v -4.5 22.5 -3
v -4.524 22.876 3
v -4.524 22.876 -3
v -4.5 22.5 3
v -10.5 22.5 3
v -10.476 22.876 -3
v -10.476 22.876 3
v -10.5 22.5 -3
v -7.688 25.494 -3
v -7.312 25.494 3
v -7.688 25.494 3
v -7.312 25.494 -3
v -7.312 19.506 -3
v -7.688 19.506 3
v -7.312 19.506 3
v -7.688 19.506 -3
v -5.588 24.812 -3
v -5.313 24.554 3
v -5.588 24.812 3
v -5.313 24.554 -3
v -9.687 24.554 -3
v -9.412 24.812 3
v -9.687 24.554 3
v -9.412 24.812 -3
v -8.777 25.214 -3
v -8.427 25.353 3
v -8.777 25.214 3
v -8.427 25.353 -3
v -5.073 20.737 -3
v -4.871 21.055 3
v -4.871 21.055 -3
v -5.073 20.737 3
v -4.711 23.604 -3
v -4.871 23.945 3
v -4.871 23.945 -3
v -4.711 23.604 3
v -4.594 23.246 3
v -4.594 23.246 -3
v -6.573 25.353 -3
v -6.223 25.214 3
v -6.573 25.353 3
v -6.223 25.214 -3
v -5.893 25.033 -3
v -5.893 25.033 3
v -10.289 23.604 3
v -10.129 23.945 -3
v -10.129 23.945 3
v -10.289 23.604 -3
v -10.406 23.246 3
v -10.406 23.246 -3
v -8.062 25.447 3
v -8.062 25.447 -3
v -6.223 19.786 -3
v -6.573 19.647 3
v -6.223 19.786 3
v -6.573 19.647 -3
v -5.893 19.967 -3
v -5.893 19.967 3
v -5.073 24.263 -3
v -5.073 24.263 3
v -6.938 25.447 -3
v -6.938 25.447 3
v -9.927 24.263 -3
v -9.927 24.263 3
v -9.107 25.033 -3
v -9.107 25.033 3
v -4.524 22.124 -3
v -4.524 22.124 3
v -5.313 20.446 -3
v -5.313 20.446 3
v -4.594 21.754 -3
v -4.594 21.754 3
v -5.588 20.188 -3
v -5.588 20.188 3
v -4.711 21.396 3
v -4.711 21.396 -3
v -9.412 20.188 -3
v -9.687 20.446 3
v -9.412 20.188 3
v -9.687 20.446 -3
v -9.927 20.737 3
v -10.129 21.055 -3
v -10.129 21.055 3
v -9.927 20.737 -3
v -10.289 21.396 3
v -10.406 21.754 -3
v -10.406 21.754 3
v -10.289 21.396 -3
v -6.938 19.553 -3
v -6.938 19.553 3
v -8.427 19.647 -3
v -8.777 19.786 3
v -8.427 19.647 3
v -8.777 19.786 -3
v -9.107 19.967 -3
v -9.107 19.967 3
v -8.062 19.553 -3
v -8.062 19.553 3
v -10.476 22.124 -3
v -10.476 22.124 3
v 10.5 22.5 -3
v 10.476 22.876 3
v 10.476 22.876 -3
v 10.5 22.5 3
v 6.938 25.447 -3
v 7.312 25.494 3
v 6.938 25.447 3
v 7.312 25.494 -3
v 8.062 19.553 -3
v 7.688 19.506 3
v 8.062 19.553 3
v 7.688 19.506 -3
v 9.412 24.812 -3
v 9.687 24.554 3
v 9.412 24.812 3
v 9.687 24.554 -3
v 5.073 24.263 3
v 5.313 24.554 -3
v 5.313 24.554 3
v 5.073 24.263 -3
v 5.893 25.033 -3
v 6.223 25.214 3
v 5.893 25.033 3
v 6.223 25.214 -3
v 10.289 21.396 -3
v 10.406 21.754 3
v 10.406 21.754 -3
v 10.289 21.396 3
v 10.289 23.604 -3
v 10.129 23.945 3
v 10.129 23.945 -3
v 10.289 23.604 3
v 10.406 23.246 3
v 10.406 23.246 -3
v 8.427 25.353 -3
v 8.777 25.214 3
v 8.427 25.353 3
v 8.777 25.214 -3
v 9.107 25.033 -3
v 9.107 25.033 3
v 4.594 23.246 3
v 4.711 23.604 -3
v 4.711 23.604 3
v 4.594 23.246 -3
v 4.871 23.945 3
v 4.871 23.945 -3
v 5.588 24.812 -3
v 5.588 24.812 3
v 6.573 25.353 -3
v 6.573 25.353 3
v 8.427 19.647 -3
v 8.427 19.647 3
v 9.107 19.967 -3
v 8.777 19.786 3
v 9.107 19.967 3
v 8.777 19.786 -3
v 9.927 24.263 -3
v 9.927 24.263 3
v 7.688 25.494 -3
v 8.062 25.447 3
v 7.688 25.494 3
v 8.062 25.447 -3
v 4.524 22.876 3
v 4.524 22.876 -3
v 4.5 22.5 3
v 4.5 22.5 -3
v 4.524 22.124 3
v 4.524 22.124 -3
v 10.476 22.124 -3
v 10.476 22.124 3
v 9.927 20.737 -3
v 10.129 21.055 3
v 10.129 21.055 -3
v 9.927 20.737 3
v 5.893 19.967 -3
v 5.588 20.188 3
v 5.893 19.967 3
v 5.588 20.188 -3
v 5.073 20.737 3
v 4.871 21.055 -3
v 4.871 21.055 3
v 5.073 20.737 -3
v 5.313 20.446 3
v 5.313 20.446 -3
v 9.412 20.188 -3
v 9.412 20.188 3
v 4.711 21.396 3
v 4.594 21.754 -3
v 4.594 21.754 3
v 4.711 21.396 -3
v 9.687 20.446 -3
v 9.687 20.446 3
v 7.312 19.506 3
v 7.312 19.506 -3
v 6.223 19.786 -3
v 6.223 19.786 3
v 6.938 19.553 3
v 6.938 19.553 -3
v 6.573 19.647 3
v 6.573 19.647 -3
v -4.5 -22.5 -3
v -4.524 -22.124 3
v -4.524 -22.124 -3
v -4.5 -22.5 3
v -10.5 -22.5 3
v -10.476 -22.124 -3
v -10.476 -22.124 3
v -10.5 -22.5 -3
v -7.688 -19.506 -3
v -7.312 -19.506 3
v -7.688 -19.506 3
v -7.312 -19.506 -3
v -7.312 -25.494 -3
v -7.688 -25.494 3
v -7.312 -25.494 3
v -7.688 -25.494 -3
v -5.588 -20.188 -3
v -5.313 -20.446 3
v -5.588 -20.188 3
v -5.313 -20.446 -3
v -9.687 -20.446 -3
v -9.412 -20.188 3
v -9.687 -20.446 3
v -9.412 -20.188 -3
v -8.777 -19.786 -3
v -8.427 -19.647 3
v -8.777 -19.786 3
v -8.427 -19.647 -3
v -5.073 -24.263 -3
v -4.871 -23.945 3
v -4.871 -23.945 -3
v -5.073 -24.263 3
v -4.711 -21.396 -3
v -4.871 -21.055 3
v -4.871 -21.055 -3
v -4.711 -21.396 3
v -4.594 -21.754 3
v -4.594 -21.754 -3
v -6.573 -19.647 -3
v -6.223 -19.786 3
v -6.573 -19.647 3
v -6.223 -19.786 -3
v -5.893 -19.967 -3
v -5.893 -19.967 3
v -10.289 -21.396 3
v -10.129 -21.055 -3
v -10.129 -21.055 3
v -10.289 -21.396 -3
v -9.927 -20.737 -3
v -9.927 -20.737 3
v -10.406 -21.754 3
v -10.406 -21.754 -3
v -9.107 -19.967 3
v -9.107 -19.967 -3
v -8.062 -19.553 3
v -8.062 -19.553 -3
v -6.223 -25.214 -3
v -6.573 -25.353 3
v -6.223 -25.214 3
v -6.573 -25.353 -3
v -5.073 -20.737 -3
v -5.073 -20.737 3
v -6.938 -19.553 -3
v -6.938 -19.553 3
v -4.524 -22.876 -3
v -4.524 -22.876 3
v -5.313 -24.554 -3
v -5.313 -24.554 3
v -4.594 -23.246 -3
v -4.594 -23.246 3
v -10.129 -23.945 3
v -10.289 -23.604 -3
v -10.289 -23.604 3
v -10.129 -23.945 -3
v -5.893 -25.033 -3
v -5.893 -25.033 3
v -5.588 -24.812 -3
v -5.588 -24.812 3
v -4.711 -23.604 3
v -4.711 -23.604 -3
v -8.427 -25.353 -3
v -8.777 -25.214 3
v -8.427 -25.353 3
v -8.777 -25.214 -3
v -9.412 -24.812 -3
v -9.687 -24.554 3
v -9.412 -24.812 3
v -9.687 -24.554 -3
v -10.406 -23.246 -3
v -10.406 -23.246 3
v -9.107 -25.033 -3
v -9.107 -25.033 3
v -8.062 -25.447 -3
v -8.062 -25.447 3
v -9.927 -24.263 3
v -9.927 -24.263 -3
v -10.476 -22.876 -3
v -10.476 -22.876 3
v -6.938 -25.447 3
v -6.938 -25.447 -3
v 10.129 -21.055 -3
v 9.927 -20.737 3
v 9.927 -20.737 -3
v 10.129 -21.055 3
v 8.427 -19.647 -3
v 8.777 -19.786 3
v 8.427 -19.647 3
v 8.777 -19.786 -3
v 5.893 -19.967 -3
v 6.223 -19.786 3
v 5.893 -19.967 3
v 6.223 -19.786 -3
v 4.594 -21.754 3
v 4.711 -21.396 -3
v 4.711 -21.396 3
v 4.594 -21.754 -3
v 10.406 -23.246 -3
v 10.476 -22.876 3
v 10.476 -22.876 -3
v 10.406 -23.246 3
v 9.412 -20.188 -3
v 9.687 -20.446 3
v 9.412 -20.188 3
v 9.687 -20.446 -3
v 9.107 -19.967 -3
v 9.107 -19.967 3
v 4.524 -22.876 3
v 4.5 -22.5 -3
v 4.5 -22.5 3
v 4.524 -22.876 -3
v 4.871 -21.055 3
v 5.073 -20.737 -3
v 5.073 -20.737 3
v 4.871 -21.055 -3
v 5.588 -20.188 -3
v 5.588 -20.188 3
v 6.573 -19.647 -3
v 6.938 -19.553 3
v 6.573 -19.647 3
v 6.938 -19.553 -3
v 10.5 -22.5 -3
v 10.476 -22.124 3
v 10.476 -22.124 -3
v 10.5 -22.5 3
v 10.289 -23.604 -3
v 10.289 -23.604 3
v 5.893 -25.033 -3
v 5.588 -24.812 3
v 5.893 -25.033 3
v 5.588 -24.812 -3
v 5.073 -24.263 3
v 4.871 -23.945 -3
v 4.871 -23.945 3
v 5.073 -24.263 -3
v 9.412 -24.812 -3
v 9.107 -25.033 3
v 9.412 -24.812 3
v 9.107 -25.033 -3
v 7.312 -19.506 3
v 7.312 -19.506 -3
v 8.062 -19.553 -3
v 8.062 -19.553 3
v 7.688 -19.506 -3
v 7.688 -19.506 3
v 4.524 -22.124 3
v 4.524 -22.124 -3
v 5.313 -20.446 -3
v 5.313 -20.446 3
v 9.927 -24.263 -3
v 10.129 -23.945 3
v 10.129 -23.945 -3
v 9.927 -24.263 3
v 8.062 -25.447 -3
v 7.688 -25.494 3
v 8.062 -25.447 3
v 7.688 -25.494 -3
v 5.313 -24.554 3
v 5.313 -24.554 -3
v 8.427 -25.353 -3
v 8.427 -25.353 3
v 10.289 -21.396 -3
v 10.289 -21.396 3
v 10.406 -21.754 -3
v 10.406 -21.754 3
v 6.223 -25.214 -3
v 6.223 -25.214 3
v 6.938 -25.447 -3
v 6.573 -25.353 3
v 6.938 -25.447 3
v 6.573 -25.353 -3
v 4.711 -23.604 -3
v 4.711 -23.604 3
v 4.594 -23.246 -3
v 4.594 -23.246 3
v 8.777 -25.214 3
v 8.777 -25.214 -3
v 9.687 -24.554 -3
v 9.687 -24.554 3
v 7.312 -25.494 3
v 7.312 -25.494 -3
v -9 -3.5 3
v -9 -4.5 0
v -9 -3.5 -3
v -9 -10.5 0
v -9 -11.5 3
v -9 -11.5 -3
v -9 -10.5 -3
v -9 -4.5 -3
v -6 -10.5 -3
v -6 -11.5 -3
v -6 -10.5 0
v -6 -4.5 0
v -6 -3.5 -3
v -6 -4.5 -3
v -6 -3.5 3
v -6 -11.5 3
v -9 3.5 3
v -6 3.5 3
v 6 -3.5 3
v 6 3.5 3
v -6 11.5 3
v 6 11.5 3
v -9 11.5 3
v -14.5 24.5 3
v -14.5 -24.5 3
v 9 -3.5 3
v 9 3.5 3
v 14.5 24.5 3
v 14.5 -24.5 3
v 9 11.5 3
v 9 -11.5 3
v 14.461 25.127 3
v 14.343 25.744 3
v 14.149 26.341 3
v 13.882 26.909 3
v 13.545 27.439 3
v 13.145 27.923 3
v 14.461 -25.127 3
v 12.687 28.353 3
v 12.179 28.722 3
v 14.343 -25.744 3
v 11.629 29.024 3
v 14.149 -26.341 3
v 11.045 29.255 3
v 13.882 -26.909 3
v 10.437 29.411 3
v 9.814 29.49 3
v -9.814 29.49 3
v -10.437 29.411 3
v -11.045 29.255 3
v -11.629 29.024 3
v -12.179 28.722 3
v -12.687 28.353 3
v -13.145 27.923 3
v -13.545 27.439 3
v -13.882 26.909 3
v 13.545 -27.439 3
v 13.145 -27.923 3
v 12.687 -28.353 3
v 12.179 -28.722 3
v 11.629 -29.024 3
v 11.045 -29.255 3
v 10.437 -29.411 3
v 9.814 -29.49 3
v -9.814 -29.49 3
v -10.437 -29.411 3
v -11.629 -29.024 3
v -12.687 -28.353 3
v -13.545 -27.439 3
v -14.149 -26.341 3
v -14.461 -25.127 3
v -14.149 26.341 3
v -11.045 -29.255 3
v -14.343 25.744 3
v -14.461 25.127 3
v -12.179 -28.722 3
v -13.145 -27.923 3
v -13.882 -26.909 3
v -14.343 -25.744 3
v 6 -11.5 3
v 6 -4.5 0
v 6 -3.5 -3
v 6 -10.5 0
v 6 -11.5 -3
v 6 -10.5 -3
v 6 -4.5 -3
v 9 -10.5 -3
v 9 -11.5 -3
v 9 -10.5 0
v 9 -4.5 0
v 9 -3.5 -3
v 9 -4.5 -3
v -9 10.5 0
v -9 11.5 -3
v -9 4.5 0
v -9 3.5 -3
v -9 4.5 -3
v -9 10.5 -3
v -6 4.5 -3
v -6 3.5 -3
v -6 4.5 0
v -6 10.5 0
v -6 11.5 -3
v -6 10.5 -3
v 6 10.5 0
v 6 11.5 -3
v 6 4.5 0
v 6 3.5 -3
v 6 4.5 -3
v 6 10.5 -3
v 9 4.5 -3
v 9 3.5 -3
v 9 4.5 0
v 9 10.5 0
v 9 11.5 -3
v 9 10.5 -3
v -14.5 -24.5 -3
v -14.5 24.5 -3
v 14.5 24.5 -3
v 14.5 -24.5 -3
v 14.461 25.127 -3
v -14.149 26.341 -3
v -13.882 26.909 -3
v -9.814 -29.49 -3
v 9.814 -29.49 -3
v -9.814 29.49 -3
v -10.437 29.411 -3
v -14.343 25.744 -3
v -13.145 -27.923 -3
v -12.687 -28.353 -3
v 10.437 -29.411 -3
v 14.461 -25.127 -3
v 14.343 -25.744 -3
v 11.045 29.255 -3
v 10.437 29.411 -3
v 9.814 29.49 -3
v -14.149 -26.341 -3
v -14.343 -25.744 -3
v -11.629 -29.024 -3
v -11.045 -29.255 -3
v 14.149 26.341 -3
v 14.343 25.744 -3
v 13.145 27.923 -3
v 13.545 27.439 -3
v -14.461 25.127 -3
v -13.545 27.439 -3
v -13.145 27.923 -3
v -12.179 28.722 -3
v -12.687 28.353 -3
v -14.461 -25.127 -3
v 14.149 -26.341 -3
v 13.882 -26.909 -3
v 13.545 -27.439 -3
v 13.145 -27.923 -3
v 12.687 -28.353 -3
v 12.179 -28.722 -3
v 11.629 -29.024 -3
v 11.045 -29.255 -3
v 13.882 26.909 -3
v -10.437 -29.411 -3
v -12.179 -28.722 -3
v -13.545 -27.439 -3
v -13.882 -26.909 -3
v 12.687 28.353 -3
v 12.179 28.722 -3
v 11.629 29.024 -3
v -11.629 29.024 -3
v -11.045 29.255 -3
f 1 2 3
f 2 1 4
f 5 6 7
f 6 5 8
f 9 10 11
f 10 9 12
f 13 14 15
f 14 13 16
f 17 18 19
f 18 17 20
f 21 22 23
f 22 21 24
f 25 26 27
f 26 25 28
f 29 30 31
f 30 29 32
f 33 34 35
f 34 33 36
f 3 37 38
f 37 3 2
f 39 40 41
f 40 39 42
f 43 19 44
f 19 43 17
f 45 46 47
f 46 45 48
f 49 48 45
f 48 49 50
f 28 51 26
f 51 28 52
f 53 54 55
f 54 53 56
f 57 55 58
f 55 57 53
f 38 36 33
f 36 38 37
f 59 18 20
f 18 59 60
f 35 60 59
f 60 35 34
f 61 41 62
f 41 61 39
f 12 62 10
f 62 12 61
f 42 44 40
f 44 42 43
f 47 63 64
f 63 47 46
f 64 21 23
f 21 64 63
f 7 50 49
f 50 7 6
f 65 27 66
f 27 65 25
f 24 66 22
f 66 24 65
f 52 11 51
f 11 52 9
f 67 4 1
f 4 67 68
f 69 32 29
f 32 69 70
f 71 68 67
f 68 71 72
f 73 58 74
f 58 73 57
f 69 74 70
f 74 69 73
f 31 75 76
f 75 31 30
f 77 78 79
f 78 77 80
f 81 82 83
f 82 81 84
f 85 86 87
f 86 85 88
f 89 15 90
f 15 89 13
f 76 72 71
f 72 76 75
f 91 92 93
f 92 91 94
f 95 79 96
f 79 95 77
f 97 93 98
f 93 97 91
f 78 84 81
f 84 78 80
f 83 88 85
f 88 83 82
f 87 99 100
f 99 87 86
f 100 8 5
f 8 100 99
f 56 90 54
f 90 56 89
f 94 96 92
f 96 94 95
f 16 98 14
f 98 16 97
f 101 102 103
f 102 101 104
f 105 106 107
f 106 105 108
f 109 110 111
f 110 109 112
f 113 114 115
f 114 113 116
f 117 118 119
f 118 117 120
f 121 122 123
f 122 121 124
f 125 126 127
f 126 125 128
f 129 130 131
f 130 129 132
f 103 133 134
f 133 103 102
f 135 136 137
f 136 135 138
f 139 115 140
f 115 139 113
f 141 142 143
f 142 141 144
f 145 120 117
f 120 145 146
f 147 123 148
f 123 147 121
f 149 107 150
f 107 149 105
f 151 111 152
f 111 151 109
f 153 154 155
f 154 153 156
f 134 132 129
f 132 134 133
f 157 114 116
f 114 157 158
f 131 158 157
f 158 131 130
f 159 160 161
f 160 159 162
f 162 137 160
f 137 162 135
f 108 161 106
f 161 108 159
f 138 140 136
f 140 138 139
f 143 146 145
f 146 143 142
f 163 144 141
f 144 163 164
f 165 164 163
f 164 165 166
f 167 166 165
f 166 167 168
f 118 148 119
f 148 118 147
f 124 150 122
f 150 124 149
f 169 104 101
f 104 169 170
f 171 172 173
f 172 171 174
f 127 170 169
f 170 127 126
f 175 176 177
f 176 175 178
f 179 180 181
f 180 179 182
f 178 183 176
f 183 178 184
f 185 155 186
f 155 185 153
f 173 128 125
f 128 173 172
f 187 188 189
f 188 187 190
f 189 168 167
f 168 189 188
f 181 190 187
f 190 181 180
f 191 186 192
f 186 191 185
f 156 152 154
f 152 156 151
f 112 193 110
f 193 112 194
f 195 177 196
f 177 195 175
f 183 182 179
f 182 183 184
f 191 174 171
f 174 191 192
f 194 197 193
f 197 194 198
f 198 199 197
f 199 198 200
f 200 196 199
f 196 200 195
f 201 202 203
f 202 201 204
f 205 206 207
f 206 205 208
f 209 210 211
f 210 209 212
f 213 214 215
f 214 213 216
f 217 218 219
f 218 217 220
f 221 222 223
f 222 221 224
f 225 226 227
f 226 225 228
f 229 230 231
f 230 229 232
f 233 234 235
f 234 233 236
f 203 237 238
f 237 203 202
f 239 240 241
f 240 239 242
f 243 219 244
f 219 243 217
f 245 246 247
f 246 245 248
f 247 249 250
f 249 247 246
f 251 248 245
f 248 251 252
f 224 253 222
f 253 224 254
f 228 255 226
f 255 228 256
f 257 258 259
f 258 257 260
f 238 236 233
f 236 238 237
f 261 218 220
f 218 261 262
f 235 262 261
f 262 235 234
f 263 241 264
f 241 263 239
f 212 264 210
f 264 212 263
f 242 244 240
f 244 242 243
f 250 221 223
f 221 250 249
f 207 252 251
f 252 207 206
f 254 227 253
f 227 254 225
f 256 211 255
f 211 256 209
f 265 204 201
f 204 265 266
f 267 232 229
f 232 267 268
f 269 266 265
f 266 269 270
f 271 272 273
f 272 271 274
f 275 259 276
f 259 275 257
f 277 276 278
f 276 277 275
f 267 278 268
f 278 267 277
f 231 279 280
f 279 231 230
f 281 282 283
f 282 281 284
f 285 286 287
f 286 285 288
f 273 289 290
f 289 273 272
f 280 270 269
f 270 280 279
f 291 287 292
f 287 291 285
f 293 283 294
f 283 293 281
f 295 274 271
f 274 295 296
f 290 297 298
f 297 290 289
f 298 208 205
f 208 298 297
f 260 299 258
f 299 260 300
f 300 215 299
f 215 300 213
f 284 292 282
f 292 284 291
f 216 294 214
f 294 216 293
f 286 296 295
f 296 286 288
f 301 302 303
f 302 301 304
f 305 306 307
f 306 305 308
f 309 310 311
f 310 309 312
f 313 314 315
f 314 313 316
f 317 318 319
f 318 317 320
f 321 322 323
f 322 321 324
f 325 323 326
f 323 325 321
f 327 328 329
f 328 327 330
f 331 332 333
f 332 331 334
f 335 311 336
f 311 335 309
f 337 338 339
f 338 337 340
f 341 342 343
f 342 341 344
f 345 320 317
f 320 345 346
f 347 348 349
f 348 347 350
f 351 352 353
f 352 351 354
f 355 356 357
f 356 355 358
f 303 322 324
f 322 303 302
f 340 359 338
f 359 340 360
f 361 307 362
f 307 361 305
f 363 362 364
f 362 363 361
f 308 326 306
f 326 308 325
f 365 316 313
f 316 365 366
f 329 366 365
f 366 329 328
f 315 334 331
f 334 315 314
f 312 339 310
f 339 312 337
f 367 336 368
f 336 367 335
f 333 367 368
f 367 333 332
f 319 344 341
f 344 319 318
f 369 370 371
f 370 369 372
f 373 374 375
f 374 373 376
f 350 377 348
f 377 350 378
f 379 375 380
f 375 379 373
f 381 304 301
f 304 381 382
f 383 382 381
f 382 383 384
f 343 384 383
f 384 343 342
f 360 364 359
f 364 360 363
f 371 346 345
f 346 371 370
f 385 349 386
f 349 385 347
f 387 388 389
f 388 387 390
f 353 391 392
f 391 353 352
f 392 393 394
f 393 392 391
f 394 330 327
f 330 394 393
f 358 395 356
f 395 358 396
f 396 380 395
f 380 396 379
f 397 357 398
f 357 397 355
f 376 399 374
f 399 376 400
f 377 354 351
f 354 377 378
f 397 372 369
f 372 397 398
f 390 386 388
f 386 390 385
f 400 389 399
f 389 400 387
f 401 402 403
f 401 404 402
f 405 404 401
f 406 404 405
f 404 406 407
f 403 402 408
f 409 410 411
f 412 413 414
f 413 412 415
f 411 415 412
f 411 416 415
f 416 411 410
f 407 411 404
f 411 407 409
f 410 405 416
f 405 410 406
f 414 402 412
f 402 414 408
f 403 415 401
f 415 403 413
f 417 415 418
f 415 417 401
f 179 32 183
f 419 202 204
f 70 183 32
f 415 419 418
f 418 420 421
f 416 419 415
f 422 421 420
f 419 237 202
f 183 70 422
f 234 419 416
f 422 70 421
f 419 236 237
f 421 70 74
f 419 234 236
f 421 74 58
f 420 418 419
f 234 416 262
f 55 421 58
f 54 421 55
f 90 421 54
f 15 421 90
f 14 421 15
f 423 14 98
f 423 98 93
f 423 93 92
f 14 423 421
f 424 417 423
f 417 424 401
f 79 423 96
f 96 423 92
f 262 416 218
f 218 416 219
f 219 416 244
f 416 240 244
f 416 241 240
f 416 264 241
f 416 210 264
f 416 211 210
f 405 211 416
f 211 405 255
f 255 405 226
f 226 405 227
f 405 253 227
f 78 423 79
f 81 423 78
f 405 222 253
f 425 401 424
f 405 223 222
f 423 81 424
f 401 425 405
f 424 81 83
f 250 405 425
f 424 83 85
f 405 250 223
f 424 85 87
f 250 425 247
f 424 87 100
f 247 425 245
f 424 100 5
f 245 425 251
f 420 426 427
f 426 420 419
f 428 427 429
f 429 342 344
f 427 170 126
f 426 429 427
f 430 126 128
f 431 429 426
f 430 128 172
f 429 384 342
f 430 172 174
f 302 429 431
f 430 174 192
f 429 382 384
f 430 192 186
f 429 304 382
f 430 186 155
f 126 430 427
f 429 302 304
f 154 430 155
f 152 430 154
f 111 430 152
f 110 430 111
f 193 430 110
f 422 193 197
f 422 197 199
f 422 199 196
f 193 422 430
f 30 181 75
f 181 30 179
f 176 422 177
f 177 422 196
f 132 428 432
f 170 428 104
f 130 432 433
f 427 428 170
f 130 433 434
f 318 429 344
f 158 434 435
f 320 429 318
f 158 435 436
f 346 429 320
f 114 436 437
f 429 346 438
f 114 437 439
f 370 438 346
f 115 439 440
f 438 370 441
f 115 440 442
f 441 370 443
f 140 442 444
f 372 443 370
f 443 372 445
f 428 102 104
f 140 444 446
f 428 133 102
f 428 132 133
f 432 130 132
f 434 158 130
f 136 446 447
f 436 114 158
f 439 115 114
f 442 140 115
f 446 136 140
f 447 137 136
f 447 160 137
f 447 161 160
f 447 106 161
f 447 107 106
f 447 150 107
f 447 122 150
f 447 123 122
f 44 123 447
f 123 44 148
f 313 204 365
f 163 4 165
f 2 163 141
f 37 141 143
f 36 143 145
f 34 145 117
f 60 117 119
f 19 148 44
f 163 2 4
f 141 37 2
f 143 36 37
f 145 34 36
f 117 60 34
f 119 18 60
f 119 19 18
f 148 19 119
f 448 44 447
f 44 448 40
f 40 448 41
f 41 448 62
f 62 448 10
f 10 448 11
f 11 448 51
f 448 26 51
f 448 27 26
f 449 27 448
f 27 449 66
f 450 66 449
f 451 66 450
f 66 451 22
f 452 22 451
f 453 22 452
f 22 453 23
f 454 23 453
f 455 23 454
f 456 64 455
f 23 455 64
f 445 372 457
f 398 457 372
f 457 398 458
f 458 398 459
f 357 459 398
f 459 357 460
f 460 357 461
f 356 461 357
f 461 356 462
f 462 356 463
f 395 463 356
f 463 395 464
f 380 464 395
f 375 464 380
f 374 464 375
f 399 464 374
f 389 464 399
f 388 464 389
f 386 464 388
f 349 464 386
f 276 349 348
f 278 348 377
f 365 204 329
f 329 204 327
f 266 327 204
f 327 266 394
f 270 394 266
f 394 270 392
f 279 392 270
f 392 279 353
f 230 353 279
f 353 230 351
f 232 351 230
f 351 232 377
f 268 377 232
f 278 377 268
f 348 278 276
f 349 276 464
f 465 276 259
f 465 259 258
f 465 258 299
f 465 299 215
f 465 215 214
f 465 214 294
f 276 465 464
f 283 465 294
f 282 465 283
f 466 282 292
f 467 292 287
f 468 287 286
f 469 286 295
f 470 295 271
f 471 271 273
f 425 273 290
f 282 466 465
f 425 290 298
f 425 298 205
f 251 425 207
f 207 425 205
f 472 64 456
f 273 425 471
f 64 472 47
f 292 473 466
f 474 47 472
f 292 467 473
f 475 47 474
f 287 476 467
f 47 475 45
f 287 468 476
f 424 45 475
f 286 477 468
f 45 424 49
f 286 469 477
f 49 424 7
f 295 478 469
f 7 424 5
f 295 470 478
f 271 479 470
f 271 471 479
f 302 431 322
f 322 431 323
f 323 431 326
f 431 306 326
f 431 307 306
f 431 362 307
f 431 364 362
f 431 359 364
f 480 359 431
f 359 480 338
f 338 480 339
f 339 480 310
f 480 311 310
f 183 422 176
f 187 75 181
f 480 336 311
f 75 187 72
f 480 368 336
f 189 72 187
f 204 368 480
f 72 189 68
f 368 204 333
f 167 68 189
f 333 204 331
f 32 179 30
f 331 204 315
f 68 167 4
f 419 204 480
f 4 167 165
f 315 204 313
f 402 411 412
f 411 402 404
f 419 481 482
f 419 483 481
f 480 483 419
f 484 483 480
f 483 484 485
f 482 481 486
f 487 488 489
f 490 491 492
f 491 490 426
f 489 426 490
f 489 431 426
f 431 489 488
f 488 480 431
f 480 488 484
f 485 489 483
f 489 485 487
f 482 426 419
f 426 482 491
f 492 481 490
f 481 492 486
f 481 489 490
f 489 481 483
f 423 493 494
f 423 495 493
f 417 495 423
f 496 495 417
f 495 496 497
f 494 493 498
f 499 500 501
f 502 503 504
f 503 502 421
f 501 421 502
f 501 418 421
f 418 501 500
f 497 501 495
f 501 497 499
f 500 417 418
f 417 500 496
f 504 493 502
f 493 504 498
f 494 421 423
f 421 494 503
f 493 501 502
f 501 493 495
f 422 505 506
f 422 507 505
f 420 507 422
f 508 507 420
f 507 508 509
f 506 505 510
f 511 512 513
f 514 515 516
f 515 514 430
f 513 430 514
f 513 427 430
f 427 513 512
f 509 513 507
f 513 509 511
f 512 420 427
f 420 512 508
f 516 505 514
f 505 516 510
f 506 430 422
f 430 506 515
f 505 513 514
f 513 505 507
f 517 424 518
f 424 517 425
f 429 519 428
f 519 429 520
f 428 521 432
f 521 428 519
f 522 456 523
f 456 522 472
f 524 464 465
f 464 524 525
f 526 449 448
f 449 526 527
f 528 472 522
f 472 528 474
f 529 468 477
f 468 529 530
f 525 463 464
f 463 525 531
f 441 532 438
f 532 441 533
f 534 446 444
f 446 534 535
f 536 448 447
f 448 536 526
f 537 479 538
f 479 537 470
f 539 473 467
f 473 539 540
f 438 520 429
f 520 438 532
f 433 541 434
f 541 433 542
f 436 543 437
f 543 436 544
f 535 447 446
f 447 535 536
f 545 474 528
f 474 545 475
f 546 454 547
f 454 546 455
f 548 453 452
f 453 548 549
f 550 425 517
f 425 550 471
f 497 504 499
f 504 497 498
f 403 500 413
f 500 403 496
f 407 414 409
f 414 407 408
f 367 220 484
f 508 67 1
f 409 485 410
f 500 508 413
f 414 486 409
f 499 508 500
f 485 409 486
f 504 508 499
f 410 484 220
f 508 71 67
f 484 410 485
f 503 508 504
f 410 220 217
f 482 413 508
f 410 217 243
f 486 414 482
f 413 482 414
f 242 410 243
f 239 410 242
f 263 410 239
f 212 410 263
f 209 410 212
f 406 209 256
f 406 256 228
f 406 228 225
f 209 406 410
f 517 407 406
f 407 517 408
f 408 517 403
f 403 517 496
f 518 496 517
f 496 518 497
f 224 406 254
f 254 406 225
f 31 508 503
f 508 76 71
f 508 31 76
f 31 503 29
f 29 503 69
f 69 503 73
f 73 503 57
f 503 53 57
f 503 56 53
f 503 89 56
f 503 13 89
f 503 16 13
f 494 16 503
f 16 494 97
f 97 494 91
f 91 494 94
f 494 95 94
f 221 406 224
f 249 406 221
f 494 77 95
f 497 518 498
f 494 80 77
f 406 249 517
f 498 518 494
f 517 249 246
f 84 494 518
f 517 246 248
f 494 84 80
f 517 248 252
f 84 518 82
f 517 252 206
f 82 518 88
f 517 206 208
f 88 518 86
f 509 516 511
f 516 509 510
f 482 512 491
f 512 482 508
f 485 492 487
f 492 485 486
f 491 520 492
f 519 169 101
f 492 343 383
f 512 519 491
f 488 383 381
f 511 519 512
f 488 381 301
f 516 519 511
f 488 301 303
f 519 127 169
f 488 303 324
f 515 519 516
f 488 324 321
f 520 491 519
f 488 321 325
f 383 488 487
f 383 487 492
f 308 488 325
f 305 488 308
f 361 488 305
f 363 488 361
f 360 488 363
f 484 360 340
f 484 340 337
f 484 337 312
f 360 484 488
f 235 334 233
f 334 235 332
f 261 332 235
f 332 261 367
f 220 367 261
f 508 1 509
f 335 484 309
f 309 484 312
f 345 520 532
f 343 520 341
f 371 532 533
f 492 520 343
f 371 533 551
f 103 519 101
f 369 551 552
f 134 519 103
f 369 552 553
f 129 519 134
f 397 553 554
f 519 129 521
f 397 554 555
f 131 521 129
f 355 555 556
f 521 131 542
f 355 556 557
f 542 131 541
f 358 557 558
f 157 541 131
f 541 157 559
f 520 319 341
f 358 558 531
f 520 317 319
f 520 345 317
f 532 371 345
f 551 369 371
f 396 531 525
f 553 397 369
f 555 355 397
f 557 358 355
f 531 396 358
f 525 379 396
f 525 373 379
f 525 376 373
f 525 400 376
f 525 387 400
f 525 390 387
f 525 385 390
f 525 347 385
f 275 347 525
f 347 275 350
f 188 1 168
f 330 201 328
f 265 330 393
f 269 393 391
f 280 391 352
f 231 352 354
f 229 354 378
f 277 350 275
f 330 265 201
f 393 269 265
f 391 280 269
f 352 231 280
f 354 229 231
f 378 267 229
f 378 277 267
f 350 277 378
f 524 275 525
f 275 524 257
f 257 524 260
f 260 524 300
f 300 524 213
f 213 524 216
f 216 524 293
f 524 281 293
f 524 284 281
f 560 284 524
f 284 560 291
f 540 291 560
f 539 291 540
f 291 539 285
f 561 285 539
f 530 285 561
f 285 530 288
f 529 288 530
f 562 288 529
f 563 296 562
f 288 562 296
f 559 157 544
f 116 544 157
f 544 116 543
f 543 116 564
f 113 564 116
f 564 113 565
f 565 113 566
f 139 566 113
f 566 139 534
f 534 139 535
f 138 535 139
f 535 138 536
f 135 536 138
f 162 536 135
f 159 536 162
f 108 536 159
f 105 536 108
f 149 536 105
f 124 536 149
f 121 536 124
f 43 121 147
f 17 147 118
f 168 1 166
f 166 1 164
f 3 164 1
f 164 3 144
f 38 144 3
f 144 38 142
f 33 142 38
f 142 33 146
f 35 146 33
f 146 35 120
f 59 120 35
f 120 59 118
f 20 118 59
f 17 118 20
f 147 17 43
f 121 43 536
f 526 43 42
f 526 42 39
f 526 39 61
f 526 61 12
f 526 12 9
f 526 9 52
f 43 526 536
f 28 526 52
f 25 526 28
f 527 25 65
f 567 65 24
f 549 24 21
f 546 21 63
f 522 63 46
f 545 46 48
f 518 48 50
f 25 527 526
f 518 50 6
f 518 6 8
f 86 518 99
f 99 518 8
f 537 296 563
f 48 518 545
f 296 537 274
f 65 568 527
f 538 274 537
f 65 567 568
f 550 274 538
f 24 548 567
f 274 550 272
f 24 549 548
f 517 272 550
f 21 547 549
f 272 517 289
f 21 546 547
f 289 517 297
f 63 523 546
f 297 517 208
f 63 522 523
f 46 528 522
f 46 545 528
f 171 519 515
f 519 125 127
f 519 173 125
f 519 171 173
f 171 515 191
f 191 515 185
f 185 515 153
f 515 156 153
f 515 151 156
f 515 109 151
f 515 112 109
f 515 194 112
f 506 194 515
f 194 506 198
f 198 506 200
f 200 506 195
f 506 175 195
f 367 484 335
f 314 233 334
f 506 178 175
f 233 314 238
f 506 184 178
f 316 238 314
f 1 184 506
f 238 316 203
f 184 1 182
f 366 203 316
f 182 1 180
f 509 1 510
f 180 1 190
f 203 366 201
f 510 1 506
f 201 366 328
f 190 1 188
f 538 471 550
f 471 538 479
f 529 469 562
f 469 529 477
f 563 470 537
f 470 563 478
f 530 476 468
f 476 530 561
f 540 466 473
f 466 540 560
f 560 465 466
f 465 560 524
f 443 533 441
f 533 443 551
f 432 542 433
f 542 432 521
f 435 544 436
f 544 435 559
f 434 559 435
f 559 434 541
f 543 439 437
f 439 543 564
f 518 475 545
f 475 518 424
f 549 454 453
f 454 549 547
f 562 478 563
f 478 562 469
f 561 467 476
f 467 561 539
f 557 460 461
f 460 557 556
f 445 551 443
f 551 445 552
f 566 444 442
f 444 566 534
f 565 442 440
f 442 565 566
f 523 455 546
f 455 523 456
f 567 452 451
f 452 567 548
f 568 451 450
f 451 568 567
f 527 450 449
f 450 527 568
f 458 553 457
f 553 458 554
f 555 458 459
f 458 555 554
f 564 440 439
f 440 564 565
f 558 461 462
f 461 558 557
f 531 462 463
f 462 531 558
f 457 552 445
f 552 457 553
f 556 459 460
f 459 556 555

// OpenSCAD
$fn = 50;


difference() {
	union() {
		translate(v = [0, 0, -3.0000000000]) {
			rotate(a = [0, 0, 0]) {
				hull() {
					translate(v = [-9.5000000000, 24.5000000000, 0]) {
						rotate(a = [0, 0, 0]) {
							translate(v = [0, 0, 0]) {
								rotate(a = [0, 0, 0]) {
									cylinder(h = 6, r = 5);
								}
							}
						}
					}
					translate(v = [9.5000000000, 24.5000000000, 0]) {
						rotate(a = [0, 0, 0]) {
							translate(v = [0, 0, 0]) {
								rotate(a = [0, 0, 0]) {
									cylinder(h = 6, r = 5);
								}
							}
						}
					}
					translate(v = [-9.5000000000, -24.5000000000, 0]) {
						rotate(a = [0, 0, 0]) {
							translate(v = [0, 0, 0]) {
								rotate(a = [0, 0, 0]) {
									cylinder(h = 6, r = 5);
								}
							}
						}
					}
					translate(v = [9.5000000000, -24.5000000000, 0]) {
						rotate(a = [0, 0, 0]) {
							translate(v = [0, 0, 0]) {
								rotate(a = [0, 0, 0]) {
									cylinder(h = 6, r = 5);
								}
							}
						}
					}
				}
			}
		}
	}
	union() {
		translate(v = [-7.5000000000, 22.5000000000, -125.0000000000]) {
			rotate(a = [0, 0, 0]) {
				cylinder(h = 250, r = 3.0000000000);
			}
		}
		translate(v = [7.5000000000, 22.5000000000, -125.0000000000]) {
			rotate(a = [0, 0, 0]) {
				cylinder(h = 250, r = 3.0000000000);
			}
		}
		translate(v = [-7.5000000000, -22.5000000000, -125.0000000000]) {
			rotate(a = [0, 0, 0]) {
				cylinder(h = 250, r = 3.0000000000);
			}
		}
		translate(v = [7.5000000000, -22.5000000000, -125.0000000000]) {
			rotate(a = [0, 0, 0]) {
				cylinder(h = 250, r = 3.0000000000);
			}
		}
		translate(v = [-9.0000000000, -11.5000000000, -50]) {
			rotate(a = [0, 0, 0]) {
				cube(size = [3, 1, 100]);
			}
		}
		translate(v = [-9.0000000000, -4.5000000000, -50]) {
			rotate(a = [0, 0, 0]) {
				cube(size = [3, 1, 100]);
			}
		}
		translate(v = [-9.0000000000, -11.5000000000, 0]) {
			rotate(a = [0, 0, 0]) {
				cube(size = [3, 8, 3]);
			}
		}
		translate(v = [6.0000000000, -11.5000000000, -50]) {
			rotate(a = [0, 0, 0]) {
				cube(size = [3, 1, 100]);
			}
		}
		translate(v = [6.0000000000, -4.5000000000, -50]) {
			rotate(a = [0, 0, 0]) {
				cube(size = [3, 1, 100]);
			}
		}
		translate(v = [6.0000000000, -11.5000000000, 0]) {
			rotate(a = [0, 0, 0]) {
				cube(size = [3, 8, 3]);
			}
		}
		translate(v = [-9.0000000000, 3.5000000000, -50]) {
			rotate(a = [0, 0, 0]) {
				cube(size = [3, 1, 100]);
			}
		}
		translate(v = [-9.0000000000, 10.5000000000, -50]) {
			rotate(a = [0, 0, 0]) {
				cube(size = [3, 1, 100]);
			}
		}
		translate(v = [-9.0000000000, 3.5000000000, 0]) {
			rotate(a = [0, 0, 0]) {
				cube(size = [3, 8, 3]);
			}
		}
		translate(v = [6.0000000000, 3.5000000000, -50]) {
			rotate(a = [0, 0, 0]) {
				cube(size = [3, 1, 100]);
			}
		}
		translate(v = [6.0000000000, 10.5000000000, -50]) {
			rotate(a = [0, 0, 0]) {
				cube(size = [3, 1, 100]);
			}
		}
		translate(v = [6.0000000000, 3.5000000000, 0]) {
			rotate(a = [0, 0, 0]) {
				cube(size = [3, 8, 3]);
			}
		}
	}
}
